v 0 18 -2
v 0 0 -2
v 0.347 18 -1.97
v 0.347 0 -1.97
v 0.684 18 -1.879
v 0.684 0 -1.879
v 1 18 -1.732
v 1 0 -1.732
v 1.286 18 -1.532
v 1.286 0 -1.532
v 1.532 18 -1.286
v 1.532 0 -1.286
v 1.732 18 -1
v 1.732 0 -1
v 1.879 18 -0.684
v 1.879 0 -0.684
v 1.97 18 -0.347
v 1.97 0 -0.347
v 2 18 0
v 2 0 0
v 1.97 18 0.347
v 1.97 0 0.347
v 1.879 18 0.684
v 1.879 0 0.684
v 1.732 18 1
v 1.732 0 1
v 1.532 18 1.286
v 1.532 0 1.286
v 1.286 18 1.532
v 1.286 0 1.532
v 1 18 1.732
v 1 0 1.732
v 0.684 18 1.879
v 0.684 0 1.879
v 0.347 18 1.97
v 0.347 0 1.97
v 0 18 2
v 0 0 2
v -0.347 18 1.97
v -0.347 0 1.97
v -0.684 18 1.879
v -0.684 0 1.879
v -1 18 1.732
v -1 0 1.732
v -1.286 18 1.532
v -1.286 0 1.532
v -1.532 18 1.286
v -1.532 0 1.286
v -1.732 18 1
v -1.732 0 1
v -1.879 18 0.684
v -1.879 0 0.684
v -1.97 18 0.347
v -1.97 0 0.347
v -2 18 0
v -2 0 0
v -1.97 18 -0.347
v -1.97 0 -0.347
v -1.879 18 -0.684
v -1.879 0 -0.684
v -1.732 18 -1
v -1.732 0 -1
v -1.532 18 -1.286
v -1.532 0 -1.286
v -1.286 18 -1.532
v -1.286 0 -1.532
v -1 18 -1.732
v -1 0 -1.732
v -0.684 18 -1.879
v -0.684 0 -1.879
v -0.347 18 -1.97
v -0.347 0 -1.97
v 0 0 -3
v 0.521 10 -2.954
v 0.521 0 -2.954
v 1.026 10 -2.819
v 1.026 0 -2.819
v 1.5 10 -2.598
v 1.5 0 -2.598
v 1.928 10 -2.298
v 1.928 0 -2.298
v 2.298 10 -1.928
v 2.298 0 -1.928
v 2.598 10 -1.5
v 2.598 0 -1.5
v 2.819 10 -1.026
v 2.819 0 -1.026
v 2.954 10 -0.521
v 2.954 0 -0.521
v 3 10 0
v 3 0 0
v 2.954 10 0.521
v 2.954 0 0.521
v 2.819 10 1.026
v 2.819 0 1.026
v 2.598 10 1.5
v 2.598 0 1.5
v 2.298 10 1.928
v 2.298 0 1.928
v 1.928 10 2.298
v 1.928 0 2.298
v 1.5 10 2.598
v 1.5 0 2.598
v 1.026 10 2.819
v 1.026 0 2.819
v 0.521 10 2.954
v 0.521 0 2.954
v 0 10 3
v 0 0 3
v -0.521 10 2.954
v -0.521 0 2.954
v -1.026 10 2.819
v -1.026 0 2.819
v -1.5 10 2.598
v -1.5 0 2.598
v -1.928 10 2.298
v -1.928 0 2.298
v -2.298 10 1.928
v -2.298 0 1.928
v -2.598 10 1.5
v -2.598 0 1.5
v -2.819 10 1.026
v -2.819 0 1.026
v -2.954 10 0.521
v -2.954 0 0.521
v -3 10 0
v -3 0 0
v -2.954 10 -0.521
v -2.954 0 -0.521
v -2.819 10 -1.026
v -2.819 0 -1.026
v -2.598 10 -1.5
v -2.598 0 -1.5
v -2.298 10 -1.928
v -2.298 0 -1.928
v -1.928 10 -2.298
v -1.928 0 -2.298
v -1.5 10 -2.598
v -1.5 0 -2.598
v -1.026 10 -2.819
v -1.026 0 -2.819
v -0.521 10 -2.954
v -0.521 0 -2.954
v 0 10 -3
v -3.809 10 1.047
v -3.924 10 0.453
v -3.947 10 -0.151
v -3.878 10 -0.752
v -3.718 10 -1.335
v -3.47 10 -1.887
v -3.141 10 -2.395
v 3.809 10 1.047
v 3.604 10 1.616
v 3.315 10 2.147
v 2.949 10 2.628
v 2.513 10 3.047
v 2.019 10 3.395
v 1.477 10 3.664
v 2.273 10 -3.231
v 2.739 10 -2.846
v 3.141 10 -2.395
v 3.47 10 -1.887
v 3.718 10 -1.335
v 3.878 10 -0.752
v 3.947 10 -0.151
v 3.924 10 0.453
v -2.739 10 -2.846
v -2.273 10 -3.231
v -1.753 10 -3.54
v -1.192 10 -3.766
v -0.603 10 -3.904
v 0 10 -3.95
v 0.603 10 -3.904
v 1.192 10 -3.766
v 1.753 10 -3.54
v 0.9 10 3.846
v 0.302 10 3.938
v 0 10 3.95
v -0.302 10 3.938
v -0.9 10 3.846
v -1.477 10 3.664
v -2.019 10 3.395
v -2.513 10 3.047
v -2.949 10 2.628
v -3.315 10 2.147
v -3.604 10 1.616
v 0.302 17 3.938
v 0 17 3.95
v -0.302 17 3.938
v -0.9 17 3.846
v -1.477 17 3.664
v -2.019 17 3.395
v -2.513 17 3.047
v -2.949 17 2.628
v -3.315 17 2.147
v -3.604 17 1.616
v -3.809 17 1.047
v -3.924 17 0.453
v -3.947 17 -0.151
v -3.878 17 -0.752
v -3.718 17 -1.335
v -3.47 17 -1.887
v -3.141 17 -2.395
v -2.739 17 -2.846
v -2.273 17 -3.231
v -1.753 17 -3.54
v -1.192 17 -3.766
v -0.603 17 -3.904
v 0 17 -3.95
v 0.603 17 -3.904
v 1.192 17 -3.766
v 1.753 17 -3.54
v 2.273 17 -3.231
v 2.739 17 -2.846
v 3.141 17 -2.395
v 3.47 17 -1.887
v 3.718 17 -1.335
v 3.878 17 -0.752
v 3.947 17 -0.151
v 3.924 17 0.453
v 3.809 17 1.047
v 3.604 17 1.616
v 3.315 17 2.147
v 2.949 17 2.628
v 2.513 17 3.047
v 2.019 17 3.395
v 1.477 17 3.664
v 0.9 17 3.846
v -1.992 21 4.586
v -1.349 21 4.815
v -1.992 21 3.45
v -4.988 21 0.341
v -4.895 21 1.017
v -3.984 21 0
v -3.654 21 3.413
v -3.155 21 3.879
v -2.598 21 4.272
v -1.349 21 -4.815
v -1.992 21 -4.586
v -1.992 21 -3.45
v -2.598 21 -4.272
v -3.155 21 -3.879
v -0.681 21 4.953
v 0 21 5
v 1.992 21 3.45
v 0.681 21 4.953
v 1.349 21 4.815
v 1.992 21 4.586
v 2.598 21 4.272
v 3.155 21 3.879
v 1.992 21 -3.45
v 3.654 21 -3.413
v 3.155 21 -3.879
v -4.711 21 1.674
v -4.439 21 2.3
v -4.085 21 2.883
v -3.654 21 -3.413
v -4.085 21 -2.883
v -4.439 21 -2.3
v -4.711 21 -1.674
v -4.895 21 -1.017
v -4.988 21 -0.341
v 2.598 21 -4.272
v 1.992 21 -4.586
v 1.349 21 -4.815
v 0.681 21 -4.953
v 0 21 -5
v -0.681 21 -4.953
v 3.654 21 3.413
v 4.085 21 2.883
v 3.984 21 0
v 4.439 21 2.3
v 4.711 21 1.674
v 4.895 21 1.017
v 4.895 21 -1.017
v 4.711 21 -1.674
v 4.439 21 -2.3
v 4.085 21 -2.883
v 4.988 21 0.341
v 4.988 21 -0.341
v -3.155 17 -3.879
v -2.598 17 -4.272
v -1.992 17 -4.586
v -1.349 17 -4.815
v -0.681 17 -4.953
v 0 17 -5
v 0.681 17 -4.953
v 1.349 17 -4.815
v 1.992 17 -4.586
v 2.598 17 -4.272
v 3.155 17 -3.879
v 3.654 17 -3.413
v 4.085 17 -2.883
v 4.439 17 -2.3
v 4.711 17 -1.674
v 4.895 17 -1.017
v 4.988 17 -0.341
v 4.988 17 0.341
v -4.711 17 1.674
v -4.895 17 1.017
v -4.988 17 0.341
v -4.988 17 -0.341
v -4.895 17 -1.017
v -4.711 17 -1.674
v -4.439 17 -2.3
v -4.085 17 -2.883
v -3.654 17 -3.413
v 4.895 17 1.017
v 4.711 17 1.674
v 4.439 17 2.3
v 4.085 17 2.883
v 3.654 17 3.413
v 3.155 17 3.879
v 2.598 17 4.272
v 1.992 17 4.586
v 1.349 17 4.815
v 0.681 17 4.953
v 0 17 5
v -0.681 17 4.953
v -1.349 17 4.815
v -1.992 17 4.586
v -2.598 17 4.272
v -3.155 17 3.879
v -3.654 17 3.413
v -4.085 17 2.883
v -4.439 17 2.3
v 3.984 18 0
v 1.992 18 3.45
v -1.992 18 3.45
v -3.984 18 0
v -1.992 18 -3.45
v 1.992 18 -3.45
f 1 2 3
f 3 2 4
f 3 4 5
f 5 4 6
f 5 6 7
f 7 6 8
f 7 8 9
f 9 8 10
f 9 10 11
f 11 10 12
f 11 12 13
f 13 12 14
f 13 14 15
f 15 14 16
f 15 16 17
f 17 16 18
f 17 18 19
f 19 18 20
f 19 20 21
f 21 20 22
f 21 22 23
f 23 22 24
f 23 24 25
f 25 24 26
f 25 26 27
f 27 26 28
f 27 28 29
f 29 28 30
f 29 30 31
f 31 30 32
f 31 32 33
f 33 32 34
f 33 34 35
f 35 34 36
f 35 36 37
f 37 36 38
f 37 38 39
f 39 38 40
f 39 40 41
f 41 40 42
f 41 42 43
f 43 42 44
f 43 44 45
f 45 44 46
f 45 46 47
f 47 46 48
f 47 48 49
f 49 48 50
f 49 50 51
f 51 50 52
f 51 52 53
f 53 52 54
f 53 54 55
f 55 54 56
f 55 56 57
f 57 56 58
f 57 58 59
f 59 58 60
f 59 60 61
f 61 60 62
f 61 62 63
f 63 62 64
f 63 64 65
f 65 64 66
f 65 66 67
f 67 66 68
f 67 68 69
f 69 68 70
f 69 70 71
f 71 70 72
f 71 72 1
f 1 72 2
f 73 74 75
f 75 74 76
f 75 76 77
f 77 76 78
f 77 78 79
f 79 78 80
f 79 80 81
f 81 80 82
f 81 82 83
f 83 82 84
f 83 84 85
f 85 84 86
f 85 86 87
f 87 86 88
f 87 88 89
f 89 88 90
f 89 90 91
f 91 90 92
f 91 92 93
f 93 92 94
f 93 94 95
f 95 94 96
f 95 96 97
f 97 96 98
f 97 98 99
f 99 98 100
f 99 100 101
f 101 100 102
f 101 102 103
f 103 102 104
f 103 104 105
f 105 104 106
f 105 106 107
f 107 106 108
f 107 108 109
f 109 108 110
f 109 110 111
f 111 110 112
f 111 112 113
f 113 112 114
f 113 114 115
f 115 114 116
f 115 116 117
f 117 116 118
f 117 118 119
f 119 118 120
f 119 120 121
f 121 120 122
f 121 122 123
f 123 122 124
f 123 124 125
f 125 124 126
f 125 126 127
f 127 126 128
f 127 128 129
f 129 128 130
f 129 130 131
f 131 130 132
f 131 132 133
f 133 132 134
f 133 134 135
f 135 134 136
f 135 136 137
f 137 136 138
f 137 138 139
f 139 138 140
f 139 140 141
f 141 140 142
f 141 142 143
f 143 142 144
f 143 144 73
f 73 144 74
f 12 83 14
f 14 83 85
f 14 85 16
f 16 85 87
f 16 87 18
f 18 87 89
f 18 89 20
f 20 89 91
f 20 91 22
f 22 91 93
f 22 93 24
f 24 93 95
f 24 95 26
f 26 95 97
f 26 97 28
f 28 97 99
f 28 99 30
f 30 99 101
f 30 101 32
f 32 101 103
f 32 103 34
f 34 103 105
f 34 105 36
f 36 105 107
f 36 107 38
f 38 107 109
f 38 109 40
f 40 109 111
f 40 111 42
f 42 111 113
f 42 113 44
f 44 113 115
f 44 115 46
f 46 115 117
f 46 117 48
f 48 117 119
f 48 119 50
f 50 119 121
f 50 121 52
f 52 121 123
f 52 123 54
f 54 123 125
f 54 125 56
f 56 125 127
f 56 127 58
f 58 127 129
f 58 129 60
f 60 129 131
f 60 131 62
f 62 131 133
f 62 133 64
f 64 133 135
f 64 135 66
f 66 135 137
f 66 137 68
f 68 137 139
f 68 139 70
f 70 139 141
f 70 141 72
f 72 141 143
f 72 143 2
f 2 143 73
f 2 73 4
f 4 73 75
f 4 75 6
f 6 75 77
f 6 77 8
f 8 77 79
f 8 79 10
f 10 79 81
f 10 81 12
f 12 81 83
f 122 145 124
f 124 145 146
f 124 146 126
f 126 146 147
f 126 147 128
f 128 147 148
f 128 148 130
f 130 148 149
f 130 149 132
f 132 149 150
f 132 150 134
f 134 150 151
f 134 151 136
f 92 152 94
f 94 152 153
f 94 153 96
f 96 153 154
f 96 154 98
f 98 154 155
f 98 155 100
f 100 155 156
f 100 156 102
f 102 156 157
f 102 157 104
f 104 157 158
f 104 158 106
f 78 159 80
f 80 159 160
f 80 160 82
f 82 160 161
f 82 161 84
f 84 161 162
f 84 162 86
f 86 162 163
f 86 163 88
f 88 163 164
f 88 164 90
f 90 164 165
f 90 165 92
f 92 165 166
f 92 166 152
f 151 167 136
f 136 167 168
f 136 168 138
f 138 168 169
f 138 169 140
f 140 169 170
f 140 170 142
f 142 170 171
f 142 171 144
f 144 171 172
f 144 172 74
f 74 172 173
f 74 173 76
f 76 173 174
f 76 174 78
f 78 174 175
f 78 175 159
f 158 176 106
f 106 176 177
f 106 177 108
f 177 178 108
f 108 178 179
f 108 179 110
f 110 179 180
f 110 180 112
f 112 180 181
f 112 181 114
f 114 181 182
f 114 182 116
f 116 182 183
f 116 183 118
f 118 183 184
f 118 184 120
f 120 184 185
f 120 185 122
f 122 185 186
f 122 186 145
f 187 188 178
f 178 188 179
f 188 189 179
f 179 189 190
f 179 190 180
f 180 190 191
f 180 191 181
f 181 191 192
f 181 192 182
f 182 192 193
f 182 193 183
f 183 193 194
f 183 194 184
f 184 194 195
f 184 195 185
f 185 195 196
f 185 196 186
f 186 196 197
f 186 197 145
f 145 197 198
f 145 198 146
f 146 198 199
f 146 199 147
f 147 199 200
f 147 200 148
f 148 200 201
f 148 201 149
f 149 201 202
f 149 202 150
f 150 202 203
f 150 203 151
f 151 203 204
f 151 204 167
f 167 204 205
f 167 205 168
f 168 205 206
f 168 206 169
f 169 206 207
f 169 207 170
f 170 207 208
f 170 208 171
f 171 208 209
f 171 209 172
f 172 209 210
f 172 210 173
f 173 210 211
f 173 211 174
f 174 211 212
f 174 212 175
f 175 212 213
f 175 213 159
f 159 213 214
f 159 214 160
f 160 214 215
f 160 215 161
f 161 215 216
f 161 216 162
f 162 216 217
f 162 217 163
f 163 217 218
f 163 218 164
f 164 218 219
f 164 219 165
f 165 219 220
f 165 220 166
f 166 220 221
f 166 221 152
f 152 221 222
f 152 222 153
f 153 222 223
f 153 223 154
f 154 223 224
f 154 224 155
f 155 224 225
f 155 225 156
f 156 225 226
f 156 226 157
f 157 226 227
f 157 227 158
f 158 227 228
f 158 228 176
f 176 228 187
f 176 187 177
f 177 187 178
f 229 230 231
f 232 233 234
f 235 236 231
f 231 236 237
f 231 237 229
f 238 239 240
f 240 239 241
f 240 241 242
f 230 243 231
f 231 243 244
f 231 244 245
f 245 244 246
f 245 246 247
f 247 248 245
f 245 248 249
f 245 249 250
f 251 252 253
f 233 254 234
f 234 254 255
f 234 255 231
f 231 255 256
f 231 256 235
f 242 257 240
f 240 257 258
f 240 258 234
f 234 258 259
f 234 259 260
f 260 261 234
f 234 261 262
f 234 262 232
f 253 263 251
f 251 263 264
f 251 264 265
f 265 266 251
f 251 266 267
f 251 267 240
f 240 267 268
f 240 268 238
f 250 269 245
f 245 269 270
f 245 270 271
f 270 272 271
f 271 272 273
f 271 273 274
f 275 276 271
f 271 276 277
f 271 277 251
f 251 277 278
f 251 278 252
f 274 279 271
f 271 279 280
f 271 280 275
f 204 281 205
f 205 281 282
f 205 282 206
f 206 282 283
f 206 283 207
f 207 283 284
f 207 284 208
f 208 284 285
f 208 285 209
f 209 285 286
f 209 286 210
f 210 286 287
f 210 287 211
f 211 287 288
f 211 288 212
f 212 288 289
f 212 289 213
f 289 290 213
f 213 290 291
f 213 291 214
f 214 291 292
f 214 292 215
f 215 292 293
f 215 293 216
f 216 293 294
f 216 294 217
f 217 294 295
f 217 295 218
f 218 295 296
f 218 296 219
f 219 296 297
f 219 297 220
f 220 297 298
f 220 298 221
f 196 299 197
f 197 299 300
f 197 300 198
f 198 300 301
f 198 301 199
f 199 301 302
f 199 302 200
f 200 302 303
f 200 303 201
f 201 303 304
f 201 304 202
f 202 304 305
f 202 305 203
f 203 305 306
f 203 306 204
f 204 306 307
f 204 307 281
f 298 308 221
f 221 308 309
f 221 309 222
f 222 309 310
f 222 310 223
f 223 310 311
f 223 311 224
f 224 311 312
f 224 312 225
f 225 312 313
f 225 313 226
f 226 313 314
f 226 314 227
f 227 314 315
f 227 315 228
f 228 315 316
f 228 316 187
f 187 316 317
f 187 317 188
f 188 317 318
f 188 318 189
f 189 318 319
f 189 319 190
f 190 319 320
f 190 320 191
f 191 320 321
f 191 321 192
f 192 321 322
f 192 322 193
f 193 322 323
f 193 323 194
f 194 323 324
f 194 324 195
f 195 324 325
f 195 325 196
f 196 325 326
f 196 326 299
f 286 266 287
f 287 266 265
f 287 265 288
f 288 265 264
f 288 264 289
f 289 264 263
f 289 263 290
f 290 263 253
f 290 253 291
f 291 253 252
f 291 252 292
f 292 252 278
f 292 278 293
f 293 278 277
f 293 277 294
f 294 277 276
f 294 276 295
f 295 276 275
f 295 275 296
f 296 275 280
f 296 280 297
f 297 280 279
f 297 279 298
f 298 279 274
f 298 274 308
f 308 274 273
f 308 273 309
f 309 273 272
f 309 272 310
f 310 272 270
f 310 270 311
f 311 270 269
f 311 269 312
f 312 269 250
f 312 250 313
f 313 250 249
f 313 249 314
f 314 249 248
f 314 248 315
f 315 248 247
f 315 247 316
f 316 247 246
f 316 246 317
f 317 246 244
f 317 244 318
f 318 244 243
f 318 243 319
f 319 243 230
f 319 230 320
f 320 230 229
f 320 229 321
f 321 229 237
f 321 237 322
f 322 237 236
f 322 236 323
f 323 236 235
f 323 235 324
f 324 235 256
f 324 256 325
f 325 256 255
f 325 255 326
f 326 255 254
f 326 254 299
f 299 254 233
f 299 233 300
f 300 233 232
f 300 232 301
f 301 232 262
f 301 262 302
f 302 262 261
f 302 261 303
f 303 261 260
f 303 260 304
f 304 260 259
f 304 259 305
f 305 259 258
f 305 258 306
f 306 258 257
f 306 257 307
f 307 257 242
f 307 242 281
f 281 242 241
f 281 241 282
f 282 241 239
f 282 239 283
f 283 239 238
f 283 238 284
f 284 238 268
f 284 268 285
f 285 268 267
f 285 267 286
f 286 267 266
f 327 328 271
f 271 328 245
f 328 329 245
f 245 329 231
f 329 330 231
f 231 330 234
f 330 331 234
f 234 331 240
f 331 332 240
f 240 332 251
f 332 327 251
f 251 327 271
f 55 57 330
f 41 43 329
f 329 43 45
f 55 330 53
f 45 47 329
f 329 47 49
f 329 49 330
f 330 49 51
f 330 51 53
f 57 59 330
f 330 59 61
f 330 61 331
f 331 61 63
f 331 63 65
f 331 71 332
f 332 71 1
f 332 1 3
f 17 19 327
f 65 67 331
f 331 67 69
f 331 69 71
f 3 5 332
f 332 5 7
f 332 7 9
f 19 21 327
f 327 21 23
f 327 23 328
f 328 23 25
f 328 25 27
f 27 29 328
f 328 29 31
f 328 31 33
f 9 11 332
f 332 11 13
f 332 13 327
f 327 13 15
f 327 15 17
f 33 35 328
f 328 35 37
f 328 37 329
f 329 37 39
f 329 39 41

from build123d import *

# Parameters (mm, degrees)
SKETCH1_R           = 3
SKETCH1_R_2         = 2
BOSS_EXTRUDE1_DEPTH = 18
BOSS_EXTRUDE3_START = -8
SKETCH2_R           = 3.95
SKETCH2_R_2         = 2
BOSS_EXTRUDE3_DEPTH = 7
SKETCH4_R           = 5
SKETCH4_R_2         = 2
BOSS_EXTRUDE4_DEPTH = 4
CUT_EXTRUDE1_DEPTH  = 3


with BuildPart() as part:
    # Sketch1 → Boss-Extrude1 (new body)
    with BuildSketch(Plane(origin=(0, 0, 0), x_dir=(1, 0, 0), z_dir=(0, 1, 0))):
        with Locations(Location((0, 0, 0), (0, 0, 270))):
            Circle(SKETCH1_R)
        with Locations(Location((0, 0, 0), (0, 0, 270))):
            Circle(SKETCH1_R_2, mode=Mode.SUBTRACT)
    extrude(amount=BOSS_EXTRUDE1_DEPTH)

    # Sketch2 → Boss-Extrude3 (add)
    with BuildSketch(Plane(origin=(0, 18, 0), x_dir=(1, 0, 0), z_dir=(0, 1, 0)).offset(BOSS_EXTRUDE3_START)):
        with Locations(Location((0, 0, 0), (0, 0, 270))):
            Circle(SKETCH2_R)
        with Locations(Location((0, 0, 0), (0, 0, 270))):
            Circle(SKETCH2_R_2, mode=Mode.SUBTRACT)
    extrude(amount=BOSS_EXTRUDE3_DEPTH)

    # Sketch4 → Boss-Extrude4 (add)
    with BuildSketch(Plane(origin=(0, 17, 0), x_dir=(1, 0, 0), z_dir=(0, 1, 0))):
        with Locations(Location((0, 0, 0), (0, 0, 270))):
            Circle(SKETCH4_R)
        with Locations(Location((0, 0, 0), (0, 0, 270))):
            Circle(SKETCH4_R_2, mode=Mode.SUBTRACT)
    extrude(amount=BOSS_EXTRUDE4_DEPTH)

    # Sketch5 → Cut-Extrude1 (cut)
    with BuildSketch(Plane(origin=(0, 21, 0), x_dir=(1, 0, 0), z_dir=(0, 1, 0))):
        Polygon((3.983716857, 0), (1.991858429, 3.45), (-1.991858429, 3.45), (-3.983716857, 0), (-1.991858429, -3.45), (1.991858429, -3.45), align=None)
    extrude(amount=-CUT_EXTRUDE1_DEPTH, mode=Mode.SUBTRACT)


solid = part.part
